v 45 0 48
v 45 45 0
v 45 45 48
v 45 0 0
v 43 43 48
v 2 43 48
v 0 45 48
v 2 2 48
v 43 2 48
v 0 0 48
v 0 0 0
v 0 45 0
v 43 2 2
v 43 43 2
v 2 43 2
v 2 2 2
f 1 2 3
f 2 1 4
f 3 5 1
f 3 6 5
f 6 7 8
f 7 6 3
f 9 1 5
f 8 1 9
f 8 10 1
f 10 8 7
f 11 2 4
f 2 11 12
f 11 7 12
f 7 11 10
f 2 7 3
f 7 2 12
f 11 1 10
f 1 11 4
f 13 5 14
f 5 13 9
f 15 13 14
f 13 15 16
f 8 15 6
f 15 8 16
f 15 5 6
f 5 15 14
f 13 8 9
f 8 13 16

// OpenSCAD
height=48;
width=45;
thickness=2;

difference() {
cube([width, width, height]);
translate([thickness,thickness,thickness]) cube([width-2*thickness, width-2*thickness, height]);
}
